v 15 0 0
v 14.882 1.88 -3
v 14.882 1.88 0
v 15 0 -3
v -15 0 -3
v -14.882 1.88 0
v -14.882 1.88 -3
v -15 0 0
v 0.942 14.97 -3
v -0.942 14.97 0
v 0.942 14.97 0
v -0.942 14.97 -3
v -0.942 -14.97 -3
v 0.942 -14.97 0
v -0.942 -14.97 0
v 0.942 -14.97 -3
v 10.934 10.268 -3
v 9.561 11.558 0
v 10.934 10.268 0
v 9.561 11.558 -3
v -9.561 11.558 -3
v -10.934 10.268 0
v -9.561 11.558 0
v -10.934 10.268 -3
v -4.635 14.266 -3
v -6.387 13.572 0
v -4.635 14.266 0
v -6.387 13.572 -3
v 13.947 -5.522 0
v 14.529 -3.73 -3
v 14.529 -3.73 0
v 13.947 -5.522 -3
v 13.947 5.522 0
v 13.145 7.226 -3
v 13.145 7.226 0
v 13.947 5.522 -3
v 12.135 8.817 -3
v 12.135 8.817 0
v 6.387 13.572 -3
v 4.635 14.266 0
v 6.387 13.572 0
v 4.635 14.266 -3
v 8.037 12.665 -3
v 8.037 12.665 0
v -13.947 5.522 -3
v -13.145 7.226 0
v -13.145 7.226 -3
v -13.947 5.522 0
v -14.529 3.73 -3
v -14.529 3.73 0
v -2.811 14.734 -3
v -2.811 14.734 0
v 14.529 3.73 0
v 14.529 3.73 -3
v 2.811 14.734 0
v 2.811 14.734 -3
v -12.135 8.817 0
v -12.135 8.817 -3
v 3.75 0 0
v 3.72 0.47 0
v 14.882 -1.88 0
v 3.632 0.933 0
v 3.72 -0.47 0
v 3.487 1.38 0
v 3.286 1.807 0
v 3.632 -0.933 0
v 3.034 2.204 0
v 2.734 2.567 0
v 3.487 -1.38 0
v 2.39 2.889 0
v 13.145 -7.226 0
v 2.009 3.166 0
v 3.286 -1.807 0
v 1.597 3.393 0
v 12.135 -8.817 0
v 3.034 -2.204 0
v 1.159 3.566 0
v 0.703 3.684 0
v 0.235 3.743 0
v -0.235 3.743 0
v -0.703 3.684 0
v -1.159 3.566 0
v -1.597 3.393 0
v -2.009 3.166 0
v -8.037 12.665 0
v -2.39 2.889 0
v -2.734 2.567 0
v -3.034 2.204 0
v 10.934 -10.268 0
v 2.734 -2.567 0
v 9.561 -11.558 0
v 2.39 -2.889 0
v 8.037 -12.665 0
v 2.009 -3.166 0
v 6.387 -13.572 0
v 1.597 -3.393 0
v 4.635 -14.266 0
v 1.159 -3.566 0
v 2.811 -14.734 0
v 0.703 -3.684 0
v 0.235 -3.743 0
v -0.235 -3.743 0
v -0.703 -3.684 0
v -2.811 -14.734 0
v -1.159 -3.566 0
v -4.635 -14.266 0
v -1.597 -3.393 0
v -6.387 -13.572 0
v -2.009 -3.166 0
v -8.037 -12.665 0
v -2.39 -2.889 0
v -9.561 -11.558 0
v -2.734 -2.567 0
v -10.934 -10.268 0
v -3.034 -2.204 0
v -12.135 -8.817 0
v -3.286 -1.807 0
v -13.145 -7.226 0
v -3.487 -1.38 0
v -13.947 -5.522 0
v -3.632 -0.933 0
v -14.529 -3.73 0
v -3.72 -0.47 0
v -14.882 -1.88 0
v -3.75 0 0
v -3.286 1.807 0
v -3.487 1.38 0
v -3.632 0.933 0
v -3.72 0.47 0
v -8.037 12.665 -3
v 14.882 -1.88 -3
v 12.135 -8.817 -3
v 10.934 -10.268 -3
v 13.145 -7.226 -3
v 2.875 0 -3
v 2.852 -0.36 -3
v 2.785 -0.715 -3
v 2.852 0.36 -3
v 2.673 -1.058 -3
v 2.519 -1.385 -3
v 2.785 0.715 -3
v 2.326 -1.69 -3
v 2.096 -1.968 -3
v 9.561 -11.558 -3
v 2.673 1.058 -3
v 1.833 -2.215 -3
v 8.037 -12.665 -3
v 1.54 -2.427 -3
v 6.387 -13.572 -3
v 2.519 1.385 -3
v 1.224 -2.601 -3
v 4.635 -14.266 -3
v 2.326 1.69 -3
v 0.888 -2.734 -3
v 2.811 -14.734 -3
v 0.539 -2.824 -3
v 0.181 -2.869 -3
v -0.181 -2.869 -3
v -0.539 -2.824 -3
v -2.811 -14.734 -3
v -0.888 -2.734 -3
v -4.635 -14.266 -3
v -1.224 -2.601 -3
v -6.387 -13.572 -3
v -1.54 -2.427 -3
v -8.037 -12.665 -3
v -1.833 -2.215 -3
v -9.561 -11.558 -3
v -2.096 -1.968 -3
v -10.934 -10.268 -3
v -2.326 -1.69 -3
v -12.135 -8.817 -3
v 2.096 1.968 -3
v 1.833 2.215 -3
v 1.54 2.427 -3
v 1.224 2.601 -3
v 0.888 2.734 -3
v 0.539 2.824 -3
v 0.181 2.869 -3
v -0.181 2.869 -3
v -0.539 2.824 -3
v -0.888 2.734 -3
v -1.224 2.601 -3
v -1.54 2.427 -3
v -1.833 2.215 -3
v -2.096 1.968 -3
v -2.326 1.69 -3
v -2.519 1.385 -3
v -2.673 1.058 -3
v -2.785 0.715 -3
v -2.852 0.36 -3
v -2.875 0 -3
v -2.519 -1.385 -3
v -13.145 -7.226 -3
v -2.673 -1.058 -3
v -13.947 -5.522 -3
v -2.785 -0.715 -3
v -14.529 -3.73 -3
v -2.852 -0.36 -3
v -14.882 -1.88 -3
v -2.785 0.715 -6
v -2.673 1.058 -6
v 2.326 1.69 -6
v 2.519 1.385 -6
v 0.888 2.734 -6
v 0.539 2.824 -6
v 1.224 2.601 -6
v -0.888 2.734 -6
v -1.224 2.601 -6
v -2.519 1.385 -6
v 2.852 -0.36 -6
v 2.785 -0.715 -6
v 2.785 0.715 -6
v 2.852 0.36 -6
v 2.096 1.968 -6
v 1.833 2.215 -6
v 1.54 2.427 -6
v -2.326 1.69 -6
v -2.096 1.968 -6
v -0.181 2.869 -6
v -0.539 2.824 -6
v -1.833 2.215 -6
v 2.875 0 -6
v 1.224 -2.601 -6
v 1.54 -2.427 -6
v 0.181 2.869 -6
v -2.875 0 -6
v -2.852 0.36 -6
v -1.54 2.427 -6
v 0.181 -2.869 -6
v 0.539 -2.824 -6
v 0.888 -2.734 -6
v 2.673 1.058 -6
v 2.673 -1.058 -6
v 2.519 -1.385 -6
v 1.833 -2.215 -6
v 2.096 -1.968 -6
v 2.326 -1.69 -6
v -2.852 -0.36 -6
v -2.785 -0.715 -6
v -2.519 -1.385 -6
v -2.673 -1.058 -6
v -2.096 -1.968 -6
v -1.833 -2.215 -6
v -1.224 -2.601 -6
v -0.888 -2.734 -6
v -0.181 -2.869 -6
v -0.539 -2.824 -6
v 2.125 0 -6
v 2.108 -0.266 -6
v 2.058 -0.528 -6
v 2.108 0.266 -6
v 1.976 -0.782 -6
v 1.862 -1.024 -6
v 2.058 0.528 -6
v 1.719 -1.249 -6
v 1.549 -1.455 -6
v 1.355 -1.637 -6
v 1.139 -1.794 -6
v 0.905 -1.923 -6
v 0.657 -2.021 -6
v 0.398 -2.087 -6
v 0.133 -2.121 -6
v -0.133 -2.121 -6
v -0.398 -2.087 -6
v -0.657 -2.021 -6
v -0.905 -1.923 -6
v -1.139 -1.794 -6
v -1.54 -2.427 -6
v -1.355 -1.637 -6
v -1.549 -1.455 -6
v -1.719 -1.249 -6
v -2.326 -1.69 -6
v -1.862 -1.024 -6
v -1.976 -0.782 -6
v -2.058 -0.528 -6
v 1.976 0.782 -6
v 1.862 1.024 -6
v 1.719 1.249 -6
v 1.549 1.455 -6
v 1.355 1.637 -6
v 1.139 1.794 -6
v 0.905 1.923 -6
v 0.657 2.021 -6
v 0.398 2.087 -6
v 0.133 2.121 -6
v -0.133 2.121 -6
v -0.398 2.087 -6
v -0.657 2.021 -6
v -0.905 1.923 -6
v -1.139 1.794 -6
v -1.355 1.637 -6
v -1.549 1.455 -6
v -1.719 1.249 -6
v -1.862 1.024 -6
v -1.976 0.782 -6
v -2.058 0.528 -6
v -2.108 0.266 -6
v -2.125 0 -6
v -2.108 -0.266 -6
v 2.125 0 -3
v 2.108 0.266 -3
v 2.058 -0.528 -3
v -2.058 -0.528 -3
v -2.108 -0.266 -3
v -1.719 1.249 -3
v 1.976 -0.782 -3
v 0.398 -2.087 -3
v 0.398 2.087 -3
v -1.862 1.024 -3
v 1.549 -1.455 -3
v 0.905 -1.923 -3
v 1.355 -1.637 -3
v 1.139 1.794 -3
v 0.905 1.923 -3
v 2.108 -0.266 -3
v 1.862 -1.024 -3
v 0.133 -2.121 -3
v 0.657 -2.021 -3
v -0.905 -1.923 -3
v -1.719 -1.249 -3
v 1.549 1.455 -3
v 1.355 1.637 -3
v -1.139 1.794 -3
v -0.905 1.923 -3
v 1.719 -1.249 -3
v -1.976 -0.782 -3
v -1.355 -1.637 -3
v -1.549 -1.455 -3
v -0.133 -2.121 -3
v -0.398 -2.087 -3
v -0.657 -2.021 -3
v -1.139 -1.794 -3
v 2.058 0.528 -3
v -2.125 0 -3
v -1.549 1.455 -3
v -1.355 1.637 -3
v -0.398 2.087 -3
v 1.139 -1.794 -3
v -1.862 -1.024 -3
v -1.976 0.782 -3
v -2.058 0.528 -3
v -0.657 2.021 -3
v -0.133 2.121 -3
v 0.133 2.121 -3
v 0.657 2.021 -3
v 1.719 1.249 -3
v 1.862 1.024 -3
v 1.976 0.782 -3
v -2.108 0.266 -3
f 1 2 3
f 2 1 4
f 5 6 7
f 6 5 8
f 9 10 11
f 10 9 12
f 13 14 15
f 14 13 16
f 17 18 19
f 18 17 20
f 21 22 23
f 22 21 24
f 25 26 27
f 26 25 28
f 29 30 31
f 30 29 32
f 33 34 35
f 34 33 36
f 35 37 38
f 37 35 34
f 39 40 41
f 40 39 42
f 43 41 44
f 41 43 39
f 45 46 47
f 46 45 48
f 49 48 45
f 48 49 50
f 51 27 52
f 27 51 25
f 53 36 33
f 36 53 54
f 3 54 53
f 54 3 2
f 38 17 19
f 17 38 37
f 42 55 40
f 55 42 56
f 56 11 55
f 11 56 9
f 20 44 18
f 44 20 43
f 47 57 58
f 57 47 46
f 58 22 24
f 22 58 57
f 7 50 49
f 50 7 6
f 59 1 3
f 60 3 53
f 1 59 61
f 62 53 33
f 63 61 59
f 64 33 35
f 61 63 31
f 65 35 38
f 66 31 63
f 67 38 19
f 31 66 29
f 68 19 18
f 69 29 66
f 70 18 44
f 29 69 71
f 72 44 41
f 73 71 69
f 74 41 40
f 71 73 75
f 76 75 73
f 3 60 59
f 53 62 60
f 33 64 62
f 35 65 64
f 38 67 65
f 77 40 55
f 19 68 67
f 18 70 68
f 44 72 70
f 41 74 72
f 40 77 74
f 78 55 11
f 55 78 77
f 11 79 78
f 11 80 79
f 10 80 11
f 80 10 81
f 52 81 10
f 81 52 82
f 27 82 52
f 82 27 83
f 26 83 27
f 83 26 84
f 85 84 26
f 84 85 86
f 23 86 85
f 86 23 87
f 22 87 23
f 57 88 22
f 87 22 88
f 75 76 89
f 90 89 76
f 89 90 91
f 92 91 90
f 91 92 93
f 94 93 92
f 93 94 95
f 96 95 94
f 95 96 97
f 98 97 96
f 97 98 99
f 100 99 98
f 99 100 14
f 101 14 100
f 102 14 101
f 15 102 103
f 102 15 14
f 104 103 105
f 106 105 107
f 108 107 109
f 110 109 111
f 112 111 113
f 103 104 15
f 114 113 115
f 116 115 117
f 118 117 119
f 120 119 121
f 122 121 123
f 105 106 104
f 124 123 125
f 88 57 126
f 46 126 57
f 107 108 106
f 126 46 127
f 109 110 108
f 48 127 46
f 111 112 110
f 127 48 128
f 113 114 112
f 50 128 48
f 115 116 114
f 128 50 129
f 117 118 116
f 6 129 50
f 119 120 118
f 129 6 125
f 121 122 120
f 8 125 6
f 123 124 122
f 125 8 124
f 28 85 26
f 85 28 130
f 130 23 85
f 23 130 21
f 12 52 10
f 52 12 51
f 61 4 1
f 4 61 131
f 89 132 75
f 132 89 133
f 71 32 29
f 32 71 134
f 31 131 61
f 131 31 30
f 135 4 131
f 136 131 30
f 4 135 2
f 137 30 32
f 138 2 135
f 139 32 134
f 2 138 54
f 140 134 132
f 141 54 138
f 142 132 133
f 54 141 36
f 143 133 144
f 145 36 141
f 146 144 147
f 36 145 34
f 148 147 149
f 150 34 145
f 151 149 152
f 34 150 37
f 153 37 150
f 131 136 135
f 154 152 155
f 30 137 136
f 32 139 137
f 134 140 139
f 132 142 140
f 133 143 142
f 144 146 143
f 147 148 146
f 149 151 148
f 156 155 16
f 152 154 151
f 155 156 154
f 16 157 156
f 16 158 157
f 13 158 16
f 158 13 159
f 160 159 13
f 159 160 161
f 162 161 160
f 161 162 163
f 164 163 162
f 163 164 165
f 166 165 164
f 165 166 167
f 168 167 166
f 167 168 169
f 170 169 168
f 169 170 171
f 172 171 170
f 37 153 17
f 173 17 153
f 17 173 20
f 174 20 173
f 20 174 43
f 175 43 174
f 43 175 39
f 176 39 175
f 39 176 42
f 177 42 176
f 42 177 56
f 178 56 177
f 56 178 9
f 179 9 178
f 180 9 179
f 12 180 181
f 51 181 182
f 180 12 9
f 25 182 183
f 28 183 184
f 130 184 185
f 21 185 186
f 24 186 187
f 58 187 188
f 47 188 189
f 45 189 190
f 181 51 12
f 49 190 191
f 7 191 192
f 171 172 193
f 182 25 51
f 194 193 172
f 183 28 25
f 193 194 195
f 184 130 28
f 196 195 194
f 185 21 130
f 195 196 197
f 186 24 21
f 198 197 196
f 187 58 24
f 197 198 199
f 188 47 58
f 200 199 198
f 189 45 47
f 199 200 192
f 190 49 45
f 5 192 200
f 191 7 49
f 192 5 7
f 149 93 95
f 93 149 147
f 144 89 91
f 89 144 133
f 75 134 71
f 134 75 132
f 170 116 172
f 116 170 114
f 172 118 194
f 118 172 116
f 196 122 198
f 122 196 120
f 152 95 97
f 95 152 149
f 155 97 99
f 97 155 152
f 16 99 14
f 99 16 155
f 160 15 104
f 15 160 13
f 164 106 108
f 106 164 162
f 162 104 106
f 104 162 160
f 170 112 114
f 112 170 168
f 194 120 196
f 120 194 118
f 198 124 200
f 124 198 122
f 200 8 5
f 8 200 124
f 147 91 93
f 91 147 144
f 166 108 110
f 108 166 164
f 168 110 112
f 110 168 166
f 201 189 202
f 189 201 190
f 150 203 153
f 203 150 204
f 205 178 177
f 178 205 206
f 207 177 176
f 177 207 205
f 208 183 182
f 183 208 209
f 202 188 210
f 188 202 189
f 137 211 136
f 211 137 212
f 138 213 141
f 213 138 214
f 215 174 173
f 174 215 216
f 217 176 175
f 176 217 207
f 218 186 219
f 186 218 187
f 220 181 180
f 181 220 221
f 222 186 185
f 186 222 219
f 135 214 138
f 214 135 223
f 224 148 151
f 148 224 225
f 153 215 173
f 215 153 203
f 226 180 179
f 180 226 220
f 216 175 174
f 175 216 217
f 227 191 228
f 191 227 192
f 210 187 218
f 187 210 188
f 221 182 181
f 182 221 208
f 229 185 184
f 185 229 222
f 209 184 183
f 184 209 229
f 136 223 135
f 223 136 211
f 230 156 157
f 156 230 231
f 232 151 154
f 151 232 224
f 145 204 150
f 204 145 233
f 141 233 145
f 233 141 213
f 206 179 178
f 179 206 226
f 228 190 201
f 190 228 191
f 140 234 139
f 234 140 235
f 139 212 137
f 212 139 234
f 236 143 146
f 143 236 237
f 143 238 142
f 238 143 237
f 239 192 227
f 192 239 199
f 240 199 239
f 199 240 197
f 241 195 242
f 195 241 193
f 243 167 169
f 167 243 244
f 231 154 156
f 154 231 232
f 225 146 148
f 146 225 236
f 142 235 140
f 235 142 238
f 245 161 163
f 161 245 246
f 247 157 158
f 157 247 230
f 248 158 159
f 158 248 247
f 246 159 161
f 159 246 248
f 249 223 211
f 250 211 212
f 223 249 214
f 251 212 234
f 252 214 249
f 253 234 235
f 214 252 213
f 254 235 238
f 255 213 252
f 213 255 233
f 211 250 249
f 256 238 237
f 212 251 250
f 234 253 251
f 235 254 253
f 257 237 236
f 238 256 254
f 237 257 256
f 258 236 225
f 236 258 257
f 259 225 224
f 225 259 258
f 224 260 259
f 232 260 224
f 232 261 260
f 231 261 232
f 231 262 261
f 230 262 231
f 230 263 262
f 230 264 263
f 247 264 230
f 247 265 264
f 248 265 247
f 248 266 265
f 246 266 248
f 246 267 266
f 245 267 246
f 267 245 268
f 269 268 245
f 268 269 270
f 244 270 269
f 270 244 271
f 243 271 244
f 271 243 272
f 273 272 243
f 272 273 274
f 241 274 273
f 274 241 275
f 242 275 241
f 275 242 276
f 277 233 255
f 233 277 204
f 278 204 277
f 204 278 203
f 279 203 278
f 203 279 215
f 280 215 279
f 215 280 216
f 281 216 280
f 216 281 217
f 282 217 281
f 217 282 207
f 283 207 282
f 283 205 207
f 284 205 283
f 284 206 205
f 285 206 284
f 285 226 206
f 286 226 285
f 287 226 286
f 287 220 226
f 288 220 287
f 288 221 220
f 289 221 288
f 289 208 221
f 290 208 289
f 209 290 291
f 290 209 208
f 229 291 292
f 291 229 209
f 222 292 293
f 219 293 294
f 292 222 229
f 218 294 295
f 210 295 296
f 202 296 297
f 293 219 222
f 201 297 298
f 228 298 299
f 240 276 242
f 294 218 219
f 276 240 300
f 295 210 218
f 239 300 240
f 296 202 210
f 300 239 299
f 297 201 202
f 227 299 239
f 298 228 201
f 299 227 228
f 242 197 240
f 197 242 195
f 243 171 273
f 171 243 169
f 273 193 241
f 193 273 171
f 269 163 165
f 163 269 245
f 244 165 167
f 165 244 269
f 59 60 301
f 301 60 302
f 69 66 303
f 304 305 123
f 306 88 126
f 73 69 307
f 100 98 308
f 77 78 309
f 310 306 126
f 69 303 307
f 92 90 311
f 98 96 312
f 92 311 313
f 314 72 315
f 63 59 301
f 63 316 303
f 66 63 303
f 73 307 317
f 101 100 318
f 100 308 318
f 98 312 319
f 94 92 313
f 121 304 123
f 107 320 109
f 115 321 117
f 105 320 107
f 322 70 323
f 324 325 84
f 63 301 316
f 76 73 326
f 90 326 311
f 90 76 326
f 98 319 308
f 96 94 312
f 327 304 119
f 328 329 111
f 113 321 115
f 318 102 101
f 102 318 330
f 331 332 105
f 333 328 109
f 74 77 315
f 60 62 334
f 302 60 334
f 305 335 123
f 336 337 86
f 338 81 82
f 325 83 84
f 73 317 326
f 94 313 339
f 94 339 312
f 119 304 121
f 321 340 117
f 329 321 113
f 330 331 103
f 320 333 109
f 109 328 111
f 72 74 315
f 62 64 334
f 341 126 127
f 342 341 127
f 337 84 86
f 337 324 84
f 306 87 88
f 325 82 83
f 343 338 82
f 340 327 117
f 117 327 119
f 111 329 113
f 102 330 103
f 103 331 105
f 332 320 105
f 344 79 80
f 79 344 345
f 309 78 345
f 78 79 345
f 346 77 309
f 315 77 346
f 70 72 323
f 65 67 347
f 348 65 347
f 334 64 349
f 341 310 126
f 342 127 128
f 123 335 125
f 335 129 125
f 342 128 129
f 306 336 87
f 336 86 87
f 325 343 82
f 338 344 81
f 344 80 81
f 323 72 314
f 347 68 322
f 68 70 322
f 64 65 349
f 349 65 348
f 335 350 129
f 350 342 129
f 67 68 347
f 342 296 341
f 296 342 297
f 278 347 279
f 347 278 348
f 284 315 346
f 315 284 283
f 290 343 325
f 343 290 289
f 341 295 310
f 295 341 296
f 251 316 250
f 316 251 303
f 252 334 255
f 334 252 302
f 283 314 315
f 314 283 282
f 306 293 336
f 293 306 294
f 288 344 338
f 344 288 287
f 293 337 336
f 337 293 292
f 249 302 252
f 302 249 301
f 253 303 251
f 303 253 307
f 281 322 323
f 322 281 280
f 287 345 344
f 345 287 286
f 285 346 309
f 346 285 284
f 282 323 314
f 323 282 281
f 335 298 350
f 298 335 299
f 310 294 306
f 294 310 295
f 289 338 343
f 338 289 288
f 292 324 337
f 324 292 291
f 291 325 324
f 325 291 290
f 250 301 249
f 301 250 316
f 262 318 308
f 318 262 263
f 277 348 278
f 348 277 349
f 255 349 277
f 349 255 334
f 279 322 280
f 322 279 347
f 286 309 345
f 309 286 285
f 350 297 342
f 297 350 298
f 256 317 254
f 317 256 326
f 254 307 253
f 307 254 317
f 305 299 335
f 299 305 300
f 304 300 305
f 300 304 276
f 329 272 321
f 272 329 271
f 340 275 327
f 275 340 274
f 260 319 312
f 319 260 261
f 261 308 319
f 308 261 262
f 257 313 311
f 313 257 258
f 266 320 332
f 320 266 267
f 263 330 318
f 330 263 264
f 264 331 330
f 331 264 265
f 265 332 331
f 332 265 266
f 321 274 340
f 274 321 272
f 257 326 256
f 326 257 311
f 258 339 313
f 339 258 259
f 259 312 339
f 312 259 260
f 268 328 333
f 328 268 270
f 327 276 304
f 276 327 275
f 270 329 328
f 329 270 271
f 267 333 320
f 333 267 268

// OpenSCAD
$fn = 50;

difference() {
	union() {
		translate(v = [0, 0, -3.0]) {
			cylinder(h = 3, r = 15.0);
		}
		#translate(v = [0, 0, -6.0]) {
			cylinder(h = 6, r = 2.875);
		}
	}
	union() {
		translate(v = [0, 0, 0]) {
			rotate(a = [0, 0, 0]) {
				difference() {
					union() {
						translate(v = [0, 0, -6.0]) {
							cylinder(h = 6, r = 2.0);
						}
						translate(v = [0, 0, -3]) {
							cylinder(h = 3, r1 = 2.125, r2 = 3.75);
						}
						translate(v = [0, 0, -6.0]) {
							cylinder(h = 6, r = 2.125);
						}
						translate(v = [0, 0, -6.0]) {
							cylinder(h = 6, r = 2.0);
						}
					}
					union();
				}
			}
		}
	}
}
